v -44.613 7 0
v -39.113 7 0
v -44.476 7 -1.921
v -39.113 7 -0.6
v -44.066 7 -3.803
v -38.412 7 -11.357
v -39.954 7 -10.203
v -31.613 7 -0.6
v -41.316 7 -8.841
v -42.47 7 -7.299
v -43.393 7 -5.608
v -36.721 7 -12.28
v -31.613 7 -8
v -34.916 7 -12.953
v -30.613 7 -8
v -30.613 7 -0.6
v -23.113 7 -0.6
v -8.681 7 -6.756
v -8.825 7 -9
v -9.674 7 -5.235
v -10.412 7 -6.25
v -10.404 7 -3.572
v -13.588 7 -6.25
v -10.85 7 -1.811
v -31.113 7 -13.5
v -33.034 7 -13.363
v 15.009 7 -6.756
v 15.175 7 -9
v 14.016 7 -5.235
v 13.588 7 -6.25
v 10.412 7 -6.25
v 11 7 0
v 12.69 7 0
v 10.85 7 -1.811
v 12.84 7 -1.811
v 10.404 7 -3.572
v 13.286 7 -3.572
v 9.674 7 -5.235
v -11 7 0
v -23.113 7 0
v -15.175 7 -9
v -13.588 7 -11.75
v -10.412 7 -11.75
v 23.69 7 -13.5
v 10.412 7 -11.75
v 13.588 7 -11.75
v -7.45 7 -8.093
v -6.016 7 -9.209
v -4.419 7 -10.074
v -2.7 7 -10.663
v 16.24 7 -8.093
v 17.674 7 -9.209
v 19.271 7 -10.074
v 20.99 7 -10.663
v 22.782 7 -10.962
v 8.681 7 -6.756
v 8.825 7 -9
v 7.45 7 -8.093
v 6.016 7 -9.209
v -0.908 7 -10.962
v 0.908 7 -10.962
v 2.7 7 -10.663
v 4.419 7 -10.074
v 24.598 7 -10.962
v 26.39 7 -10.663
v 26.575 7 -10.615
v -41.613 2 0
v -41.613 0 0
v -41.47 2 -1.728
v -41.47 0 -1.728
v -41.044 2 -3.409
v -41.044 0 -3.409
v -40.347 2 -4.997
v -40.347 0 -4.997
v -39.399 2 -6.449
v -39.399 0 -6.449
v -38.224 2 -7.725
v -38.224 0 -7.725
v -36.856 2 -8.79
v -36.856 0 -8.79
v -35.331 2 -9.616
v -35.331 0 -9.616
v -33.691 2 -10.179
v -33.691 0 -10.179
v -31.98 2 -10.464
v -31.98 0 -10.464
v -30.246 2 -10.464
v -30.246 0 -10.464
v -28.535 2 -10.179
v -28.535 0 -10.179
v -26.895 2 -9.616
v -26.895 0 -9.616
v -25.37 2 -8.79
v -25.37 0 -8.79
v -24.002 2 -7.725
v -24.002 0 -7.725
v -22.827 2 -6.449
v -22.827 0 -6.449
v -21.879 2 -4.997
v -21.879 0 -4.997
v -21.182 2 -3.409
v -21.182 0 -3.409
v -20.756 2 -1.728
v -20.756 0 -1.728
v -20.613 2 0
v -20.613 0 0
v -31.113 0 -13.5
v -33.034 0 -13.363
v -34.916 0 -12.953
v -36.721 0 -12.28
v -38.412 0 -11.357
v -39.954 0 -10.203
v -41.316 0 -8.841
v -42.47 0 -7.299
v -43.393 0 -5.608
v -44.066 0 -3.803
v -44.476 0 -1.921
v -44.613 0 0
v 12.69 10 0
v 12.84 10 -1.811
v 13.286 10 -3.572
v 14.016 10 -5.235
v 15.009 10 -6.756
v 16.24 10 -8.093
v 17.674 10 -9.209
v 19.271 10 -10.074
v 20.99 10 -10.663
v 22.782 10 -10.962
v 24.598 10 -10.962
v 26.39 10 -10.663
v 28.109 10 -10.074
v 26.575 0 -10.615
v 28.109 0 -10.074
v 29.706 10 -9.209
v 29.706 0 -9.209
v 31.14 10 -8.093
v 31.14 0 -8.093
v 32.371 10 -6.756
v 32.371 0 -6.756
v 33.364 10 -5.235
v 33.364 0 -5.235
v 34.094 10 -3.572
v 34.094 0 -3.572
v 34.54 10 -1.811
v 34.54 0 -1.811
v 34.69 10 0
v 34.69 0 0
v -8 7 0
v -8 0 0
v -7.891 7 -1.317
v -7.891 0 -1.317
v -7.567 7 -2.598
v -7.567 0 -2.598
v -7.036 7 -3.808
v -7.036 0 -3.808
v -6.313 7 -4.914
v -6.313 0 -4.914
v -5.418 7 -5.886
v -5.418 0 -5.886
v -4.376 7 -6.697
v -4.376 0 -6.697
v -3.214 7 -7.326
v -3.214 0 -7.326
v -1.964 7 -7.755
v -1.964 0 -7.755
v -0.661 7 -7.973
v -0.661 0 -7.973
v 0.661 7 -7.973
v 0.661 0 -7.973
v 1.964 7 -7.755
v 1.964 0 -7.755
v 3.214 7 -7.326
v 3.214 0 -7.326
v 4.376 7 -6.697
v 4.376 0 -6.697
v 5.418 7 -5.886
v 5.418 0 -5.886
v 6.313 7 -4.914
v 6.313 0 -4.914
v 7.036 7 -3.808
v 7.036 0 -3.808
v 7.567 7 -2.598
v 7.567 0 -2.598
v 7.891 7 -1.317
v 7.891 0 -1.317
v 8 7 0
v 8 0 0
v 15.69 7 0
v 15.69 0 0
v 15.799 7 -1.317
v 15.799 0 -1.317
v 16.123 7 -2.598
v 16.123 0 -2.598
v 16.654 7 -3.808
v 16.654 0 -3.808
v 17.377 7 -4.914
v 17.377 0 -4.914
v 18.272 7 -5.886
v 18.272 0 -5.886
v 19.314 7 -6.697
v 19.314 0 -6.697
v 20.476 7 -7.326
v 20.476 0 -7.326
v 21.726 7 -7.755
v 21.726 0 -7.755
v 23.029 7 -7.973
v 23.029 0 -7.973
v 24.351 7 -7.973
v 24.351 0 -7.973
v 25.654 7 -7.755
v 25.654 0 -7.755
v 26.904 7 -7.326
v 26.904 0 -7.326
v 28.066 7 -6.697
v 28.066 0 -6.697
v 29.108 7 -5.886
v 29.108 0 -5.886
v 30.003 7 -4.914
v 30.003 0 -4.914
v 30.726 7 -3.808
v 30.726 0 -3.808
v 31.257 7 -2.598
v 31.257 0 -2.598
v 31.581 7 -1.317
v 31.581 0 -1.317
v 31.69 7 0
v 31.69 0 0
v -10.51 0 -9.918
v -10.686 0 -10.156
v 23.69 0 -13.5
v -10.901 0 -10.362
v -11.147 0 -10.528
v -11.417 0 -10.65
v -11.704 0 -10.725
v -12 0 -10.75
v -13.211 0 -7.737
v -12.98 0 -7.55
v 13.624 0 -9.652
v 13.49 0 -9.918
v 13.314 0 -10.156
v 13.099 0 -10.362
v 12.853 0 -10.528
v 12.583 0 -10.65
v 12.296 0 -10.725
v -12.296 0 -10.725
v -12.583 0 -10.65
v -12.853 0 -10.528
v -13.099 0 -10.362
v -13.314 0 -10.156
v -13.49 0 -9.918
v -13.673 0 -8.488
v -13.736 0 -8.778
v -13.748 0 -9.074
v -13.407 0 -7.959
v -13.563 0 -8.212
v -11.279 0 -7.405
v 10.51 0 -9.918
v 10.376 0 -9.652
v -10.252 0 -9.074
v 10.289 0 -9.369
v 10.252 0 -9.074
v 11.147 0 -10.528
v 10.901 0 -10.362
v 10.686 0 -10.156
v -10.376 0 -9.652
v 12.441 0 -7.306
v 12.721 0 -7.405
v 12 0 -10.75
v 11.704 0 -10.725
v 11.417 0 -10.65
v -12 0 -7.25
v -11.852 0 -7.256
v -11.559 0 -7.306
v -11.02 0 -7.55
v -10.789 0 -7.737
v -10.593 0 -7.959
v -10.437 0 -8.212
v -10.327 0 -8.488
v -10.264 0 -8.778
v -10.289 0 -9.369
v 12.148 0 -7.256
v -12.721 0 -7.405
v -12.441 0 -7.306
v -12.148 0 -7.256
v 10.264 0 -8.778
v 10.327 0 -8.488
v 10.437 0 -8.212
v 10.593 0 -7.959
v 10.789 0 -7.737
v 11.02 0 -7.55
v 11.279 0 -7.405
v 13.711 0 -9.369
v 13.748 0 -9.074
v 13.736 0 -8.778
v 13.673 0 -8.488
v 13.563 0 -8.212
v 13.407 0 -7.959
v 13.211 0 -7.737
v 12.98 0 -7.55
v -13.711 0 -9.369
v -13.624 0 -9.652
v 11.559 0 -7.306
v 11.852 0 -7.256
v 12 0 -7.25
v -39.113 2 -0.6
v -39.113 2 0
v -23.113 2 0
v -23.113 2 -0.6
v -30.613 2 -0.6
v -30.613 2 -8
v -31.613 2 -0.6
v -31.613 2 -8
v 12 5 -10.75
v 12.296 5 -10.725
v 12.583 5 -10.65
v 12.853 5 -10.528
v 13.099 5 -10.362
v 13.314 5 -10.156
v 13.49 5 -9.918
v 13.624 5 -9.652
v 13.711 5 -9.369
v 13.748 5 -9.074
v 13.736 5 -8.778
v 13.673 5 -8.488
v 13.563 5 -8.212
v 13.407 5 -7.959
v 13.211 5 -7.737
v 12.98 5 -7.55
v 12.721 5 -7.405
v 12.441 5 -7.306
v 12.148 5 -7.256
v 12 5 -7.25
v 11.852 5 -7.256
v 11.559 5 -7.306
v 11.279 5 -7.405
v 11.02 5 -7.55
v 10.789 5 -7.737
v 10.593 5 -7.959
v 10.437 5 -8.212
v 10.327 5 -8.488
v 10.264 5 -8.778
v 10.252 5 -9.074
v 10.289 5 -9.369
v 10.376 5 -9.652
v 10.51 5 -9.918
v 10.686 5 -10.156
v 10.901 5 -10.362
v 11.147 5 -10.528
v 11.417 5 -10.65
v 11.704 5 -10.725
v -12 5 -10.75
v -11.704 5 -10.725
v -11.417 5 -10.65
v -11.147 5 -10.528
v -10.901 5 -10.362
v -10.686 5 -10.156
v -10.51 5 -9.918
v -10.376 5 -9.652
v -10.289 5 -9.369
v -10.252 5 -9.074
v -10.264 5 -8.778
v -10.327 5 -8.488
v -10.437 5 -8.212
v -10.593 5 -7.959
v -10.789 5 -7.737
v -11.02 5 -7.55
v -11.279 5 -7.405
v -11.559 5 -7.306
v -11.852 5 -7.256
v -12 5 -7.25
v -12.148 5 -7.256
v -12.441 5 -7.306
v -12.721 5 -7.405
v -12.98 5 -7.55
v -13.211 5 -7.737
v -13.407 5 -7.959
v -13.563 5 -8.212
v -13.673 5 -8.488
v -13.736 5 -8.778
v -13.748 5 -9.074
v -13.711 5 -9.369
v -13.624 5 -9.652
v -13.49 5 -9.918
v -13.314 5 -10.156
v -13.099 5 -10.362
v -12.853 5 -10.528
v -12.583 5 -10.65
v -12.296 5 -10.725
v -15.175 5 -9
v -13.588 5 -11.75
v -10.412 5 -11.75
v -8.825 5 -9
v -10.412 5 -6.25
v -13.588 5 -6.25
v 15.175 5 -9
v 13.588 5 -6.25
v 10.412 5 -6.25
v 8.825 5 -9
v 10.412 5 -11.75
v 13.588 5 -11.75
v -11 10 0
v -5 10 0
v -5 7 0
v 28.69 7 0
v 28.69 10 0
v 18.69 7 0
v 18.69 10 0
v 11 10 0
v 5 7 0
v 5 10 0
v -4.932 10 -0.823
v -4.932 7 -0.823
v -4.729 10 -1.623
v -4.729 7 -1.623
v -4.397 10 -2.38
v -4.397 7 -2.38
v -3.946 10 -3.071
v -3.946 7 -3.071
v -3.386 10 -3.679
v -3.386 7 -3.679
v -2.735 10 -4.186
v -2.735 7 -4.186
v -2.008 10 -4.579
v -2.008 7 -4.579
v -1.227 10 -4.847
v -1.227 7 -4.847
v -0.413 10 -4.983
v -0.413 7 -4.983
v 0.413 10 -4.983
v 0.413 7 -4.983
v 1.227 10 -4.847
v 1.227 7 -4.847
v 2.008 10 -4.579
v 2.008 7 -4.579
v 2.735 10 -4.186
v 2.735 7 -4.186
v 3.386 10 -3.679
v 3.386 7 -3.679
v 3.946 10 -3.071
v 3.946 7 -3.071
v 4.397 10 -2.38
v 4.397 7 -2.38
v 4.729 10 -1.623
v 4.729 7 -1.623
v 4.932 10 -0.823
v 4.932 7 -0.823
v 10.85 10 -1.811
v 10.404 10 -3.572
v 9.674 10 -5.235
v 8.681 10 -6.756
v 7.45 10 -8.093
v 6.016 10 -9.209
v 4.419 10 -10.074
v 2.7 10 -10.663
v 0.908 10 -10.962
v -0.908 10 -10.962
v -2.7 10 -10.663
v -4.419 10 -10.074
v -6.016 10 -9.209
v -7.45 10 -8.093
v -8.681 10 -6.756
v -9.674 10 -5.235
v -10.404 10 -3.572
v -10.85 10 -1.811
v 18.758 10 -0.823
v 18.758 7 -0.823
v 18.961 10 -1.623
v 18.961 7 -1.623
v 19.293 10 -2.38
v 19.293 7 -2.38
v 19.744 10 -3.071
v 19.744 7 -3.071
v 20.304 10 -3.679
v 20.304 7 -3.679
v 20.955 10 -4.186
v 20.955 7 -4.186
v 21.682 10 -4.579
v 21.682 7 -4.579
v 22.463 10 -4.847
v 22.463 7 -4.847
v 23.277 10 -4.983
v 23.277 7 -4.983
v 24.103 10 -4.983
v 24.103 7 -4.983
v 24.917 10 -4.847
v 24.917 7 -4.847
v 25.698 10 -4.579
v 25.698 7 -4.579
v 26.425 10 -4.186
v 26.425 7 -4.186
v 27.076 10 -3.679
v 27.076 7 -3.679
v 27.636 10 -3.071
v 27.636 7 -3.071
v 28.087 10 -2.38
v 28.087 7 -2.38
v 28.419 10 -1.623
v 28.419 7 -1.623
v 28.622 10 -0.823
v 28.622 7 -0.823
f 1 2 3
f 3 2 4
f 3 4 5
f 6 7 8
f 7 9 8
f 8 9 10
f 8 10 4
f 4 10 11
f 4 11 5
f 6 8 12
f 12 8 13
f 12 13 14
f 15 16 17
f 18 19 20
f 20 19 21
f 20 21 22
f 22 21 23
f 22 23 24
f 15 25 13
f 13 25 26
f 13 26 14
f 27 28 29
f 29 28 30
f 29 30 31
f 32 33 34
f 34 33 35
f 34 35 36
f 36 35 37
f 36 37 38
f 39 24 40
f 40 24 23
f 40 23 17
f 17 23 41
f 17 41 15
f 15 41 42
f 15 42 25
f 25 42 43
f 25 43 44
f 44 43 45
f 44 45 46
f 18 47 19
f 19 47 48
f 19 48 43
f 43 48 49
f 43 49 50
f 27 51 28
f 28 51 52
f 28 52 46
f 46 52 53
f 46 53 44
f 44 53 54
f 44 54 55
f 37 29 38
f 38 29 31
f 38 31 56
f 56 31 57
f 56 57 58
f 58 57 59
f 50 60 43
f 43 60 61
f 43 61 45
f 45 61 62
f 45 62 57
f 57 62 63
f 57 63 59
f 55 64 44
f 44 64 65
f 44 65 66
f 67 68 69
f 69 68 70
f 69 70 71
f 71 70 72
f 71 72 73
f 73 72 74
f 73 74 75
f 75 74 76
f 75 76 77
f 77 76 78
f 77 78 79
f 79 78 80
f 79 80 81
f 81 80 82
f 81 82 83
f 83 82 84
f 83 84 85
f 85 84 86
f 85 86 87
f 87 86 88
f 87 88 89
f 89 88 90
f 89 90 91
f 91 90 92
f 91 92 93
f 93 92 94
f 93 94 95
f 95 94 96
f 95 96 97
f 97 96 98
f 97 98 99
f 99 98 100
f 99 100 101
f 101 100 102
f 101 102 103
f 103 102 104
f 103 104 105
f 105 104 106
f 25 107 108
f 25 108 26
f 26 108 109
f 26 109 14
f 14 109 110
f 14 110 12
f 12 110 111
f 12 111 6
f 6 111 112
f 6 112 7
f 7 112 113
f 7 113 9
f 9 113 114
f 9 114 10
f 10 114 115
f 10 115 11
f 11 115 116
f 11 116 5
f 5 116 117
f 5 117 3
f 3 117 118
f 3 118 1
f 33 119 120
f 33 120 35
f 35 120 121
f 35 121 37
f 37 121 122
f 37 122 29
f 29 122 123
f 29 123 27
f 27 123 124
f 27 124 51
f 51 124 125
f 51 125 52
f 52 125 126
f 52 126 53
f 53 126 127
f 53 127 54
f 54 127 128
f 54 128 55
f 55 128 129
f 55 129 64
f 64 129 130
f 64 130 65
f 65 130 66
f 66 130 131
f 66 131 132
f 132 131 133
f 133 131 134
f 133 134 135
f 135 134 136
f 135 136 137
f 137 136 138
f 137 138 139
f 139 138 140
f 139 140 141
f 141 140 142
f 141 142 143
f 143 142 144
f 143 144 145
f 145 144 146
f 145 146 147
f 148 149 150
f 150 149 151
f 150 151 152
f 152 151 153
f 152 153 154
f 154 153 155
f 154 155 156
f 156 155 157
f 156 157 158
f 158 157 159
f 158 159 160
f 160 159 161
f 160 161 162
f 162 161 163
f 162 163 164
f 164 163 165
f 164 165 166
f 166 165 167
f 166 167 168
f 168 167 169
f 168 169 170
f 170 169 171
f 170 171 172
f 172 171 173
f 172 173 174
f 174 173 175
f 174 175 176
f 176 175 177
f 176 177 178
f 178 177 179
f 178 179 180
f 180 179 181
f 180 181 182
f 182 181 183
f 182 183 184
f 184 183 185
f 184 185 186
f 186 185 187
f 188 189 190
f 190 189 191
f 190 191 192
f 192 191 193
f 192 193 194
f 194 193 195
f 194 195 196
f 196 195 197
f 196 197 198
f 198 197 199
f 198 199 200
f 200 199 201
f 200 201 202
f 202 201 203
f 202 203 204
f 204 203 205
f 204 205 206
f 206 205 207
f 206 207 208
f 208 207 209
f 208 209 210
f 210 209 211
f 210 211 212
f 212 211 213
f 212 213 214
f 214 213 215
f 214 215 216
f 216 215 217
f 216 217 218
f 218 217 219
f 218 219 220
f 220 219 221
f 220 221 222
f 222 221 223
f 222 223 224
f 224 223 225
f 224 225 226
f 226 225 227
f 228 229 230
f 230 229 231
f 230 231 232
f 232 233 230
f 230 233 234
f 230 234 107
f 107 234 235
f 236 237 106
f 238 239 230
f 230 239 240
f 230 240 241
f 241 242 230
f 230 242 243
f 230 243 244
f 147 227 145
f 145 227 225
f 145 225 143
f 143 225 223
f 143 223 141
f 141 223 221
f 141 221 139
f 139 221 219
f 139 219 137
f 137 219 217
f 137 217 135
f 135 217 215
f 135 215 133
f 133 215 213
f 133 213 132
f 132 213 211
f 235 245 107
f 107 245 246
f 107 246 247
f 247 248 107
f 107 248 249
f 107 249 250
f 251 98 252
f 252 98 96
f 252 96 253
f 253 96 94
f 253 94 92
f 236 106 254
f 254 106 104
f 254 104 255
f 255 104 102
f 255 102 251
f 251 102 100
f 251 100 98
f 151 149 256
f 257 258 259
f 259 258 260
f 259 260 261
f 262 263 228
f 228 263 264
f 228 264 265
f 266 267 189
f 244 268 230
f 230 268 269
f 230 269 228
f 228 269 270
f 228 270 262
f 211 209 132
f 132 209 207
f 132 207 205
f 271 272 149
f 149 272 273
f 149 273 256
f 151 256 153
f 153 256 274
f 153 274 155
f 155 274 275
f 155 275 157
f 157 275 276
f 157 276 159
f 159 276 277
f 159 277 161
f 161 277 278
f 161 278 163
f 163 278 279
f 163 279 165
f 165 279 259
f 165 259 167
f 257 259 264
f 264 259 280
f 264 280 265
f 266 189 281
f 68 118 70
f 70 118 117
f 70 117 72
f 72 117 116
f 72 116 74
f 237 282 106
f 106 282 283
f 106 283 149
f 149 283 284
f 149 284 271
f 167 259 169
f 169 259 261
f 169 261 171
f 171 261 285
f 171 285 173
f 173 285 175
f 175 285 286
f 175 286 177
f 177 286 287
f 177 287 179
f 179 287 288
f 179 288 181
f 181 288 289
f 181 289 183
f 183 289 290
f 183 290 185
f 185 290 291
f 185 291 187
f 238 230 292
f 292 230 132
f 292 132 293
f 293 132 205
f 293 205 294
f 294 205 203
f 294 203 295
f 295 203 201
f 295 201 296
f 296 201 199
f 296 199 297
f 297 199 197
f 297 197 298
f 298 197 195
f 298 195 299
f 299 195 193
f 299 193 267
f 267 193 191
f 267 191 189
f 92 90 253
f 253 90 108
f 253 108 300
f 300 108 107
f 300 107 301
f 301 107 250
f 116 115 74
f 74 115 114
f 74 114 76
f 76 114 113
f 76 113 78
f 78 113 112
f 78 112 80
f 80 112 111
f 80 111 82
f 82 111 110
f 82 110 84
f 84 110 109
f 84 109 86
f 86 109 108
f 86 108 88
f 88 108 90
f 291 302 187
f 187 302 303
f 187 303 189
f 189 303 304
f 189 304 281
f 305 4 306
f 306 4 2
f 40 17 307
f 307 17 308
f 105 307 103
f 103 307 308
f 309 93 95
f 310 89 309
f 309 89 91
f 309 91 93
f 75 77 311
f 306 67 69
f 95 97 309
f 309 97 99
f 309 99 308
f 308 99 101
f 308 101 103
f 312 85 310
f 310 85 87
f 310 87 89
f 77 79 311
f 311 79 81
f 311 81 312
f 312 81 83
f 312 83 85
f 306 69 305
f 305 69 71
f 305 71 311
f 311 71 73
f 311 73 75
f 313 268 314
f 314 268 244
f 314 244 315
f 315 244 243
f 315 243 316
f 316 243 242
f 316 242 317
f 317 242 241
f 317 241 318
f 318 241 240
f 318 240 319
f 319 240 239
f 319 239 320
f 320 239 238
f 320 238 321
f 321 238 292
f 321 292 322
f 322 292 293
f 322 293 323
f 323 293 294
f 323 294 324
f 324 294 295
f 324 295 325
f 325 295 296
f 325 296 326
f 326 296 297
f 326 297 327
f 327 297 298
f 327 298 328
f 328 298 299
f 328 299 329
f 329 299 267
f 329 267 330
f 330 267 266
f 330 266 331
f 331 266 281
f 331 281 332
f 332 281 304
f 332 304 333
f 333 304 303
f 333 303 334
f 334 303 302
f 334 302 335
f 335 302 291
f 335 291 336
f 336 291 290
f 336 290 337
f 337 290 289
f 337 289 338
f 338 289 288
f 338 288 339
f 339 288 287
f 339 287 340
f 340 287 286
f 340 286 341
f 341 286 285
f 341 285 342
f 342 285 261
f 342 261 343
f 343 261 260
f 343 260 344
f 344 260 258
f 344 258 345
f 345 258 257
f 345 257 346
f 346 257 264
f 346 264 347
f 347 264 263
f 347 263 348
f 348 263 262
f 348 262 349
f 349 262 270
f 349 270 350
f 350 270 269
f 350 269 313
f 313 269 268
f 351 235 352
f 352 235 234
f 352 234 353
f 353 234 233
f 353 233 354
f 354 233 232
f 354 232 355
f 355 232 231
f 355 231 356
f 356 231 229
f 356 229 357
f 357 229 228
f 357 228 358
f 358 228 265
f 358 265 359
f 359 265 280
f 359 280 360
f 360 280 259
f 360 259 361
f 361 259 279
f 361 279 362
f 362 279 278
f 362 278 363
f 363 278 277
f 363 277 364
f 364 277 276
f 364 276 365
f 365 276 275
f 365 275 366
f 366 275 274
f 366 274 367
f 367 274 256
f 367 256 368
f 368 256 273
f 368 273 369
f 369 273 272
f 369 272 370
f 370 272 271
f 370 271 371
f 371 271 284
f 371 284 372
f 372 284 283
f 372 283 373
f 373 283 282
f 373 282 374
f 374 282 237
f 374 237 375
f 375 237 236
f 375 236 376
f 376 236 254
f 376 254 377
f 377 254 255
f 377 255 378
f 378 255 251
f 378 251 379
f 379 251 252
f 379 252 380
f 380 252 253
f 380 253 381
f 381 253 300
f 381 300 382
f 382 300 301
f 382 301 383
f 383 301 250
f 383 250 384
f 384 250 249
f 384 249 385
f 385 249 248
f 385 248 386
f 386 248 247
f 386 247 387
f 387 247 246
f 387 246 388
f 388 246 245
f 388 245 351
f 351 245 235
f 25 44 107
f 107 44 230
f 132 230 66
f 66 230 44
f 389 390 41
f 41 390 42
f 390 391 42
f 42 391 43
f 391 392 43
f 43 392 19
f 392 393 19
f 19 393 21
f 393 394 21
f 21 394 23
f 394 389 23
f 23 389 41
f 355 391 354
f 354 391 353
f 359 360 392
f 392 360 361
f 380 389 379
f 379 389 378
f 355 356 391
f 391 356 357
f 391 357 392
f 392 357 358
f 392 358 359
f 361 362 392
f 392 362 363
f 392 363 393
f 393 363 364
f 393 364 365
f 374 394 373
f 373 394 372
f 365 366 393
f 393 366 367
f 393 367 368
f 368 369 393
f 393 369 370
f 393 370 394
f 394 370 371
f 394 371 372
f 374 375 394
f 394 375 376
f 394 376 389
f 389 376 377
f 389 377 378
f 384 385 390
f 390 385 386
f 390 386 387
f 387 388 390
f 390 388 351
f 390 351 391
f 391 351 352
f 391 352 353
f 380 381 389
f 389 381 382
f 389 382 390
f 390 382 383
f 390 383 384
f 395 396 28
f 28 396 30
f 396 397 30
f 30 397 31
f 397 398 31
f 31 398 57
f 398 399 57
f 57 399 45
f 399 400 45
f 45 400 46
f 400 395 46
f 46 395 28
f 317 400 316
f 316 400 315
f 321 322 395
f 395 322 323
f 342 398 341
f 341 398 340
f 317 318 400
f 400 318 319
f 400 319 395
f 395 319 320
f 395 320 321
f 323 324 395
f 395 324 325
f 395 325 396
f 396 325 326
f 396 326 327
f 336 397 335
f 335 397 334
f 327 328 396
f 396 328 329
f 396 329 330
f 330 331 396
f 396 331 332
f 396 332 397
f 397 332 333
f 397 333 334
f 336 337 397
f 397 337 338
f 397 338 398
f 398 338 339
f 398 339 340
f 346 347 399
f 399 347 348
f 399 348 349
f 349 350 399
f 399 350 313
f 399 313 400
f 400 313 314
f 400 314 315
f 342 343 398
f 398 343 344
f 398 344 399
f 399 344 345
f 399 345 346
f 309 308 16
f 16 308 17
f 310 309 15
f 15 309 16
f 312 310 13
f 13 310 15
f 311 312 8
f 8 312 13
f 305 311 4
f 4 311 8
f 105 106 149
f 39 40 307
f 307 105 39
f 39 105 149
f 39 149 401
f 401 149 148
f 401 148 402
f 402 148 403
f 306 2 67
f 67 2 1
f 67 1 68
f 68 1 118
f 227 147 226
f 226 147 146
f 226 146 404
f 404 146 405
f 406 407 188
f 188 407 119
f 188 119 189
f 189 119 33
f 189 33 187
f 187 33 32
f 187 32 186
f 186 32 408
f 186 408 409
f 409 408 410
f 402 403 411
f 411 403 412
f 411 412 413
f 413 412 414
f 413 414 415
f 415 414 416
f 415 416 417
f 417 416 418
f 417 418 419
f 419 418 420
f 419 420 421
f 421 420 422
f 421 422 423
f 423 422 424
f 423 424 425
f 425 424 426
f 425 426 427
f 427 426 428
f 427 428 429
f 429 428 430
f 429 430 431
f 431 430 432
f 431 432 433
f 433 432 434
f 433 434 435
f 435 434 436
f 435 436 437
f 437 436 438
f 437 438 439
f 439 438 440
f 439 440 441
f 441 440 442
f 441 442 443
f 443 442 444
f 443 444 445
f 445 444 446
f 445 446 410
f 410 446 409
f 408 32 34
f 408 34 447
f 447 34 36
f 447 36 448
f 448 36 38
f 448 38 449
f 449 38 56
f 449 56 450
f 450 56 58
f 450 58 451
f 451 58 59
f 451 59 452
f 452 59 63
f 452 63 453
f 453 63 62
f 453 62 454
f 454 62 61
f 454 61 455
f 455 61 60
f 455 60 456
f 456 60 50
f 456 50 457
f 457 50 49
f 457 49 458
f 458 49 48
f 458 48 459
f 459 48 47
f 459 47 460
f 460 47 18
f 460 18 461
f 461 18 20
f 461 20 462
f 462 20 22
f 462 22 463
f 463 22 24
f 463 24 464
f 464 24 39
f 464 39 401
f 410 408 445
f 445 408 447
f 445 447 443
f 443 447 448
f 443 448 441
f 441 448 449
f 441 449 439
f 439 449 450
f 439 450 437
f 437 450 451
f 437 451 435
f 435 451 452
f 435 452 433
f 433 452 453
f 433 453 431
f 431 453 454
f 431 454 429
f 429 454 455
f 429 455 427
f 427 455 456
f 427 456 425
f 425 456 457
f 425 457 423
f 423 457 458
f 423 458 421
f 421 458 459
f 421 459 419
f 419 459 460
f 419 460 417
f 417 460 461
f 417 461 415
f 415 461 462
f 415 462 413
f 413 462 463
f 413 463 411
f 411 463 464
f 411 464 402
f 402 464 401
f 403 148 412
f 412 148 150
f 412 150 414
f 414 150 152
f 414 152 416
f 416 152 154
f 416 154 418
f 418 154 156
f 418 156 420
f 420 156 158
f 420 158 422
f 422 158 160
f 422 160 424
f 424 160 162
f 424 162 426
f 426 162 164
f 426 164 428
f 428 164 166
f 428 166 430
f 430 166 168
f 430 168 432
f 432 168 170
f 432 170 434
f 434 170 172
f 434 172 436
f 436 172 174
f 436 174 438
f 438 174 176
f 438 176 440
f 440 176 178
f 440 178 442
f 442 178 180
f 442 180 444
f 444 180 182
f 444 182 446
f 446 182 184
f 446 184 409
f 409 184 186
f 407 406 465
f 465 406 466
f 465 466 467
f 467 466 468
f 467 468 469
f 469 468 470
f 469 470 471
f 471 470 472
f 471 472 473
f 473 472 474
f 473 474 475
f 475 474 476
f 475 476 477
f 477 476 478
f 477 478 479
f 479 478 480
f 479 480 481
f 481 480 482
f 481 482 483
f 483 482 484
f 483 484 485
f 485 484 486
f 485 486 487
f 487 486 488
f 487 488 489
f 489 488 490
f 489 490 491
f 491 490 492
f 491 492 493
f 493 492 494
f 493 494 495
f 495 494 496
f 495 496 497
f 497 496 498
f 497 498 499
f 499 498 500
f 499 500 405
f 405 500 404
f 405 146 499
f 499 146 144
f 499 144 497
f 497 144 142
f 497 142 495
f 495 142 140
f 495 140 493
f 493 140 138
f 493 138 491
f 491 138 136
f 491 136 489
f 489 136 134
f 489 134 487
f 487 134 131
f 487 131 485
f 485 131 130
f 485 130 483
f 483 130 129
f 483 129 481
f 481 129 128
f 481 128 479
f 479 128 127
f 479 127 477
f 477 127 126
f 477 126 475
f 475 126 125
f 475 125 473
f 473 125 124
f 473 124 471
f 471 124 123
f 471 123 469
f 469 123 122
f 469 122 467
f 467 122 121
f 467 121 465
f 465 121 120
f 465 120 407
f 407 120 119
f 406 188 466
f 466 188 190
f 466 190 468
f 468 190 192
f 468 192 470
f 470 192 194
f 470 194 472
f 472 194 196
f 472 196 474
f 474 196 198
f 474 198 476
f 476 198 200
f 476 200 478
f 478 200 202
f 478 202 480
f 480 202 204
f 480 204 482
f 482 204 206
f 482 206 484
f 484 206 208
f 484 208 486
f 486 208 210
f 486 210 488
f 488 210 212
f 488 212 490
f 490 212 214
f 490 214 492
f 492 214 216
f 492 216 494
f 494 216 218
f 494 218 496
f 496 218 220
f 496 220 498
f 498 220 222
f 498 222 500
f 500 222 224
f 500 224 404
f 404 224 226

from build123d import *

# Parameters (mm, degrees)
SKETCH3_R               = 8
SKETCH3_W               = 54.803
SKETCH3_H               = 32
SKETCH3_R_2             = 5
BOSS_EXTRUDE1_DEPTH     = 7
CUT_EXTRUDE3_DEPTH      = 65.105926161
CUT_EXTRUDE3_DEPTH_BACK = 65.105926161
SKETCH4_R               = 1.75
CHAMFER1_SIZE           = 2.5
CUT_EXTRUDE5_DEPTH      = 65.105926161
CUT_EXTRUDE5_DEPTH_BACK = 65.105926161
SKETCH9_R               = 1.75
CUT_EXTRUDE6_START      = -2
SKETCH10_R              = 1.75
CUT_EXTRUDE6_DEPTH      = 2
CHAMFER3_SIZE2          = 22
CHAMFER3_SIZE           = 32
CHAMFER4_SIZE           = 16
FILLET1_DEPTH           = 7
BOSS_EXTRUDE6_START     = -5
SKETCH15_R              = 10.5
BOSS_EXTRUDE6_DEPTH     = 5
CUT_EXTRUDE7_DEPTH      = 65.105926161
CUT_EXTRUDE7_DEPTH_BACK = 65.105926161
SKETCH16_W              = 114.08603318
SKETCH16_H              = 61.147895568
BOSS_EXTRUDE7_DEPTH     = 3


with BuildPart() as part:
    # Sketch3 → Boss-Extrude1 (new body)
    # profile 1 of 10: a face of its own
    with BuildSketch(Plane(origin=(0, 0, 0), x_dir=(1, 0, 0), z_dir=(0, 1, 0))):
        with BuildLine():
            ThreePointArc((-17.613, 0), (-21.567058454, 9.545941546), (-31.113, 13.5))
            Line((-31.113, 13.5), (-31.113, 10.5))
            ThreePointArc((-31.113, 10.5), (-23.688378798, 7.424621202), (-20.613, 0))
            ThreePointArc((-20.613, 0), (-23.688378798, -7.424621202), (-31.113, -10.5))
            Line((-31.113, -10.5), (-31.113, -13.5))
            ThreePointArc((-31.113, -13.5), (-21.567058454, -9.545941546), (-17.613, 0))
        make_face()
    # profile 2 of 10: a face of its own
    with BuildSketch(Plane(origin=(0, 0, 0), x_dir=(1, 0, 0), z_dir=(0, 1, 0))):
        with BuildLine():
            Line((-31.113, 10.5), (-31.113, 13.5))
            ThreePointArc((-31.113, 13.5), (-44.613, 0), (-31.113, -13.5))
            Line((-31.113, -13.5), (-31.113, -10.5))
            ThreePointArc((-31.113, -10.5), (-41.613, 0), (-31.113, 10.5))
        make_face()
    # profile 3 of 10: a face of its own
    with BuildSketch(Plane(origin=(0, 0, 0), x_dir=(1, 0, 0), z_dir=(0, 1, 0))):
        with BuildLine():
            Line((23.69, 13.5), (-31.113, 13.5))
            ThreePointArc((-31.113, 13.5), (-21.567058454, 9.545941546), (-17.613, 0))
            ThreePointArc((-17.613, 0), (-21.567058454, -9.545941546), (-31.113, -13.5))
            Line((-31.113, -13.5), (23.69, -13.5))
            Line((23.69, -13.5), (23.69, -11))
            ThreePointArc((23.69, -11), (12.69, 0), (23.69, 11))
            Line((23.69, 11), (23.69, 13.5))
        make_face()
        with Locations(Location((0, 0, 0), (0, 0, 270))):
            Circle(SKETCH3_R, mode=Mode.SUBTRACT)
    # profile 4 of 10: a face of its own
    with BuildSketch(Plane(origin=(0, 0, 0), x_dir=(1, 0, 0), z_dir=(0, 1, 0))):
        with BuildLine():
            ThreePointArc((-17.613, 0), (-21.567058454, 9.545941546), (-31.113, 13.5))
            Line((-31.113, 13.5), (-31.113, 10.5))
            ThreePointArc((-31.113, 10.5), (-23.688378798, 7.424621202), (-20.613, 0))
            ThreePointArc((-20.613, 0), (-23.688378798, -7.424621202), (-31.113, -10.5))
            Line((-31.113, -10.5), (-31.113, -13.5))
            ThreePointArc((-31.113, -13.5), (-21.567058454, -9.545941546), (-17.613, 0))
        make_face()
    # profile 5 of 10: a face of its own
    with BuildSketch(Plane(origin=(0, 0, 0), x_dir=(1, 0, 0), z_dir=(0, 1, 0))):
        with BuildLine():
            Line((-31.113, 10.5), (-31.113, 13.5))
            ThreePointArc((-31.113, 13.5), (-44.613, 0), (-31.113, -13.5))
            Line((-31.113, -13.5), (-31.113, -10.5))
            ThreePointArc((-31.113, -10.5), (-41.613, 0), (-31.113, 10.5))
        make_face()
    # profile 6 of 10: a face of its own
    with BuildSketch(Plane(origin=(0, 0, 0), x_dir=(1, 0, 0), z_dir=(0, 1, 0))):
        with BuildLine():
            ThreePointArc((34.69, 0), (31.468174593, 7.778174593), (23.69, 11))
            Line((23.69, 11), (23.69, 8))
            ThreePointArc((23.69, 8), (29.346854249, 5.656854249), (31.69, 0))
            ThreePointArc((31.69, 0), (29.346854249, -5.656854249), (23.69, -8))
            Line((23.69, -8), (23.69, -11))
            ThreePointArc((23.69, -11), (31.468174593, -7.778174593), (34.69, 0))
        make_face()
    # profile 7 of 10: a face of its own
    with BuildSketch(Plane(origin=(0, 0, 0), x_dir=(1, 0, 0), z_dir=(0, 1, 0))):
        with BuildLine():
            Line((23.69, 8), (23.69, 11))
            ThreePointArc((23.69, 11), (12.69, 0), (23.69, -11))
            Line((23.69, -11), (23.69, -8))
            ThreePointArc((23.69, -8), (15.69, 0), (23.69, 8))
        make_face()
    # profile 8 of 10: a face of its own
    with BuildSketch(Plane(origin=(0, 0, 0), x_dir=(1, 0, 0), z_dir=(0, 1, 0))):
        with Locations((-3.7115, -29.5)):
            Rectangle(SKETCH3_W, SKETCH3_H)
        with Locations(Location((0, -32.707574931, 0), (0, 0, 270))):
            Circle(SKETCH3_R_2, mode=Mode.SUBTRACT)
    # profile 9 of 10: a face of its own
    with BuildSketch(Plane(origin=(0, 0, 0), x_dir=(1, 0, 0), z_dir=(0, 1, 0))):
        with BuildLine():
            ThreePointArc((34.69, 0), (31.468174593, 7.778174593), (23.69, 11))
            Line((23.69, 11), (23.69, 8))
            ThreePointArc((23.69, 8), (29.346854249, 5.656854249), (31.69, 0))
            ThreePointArc((31.69, 0), (29.346854249, -5.656854249), (23.69, -8))
            Line((23.69, -8), (23.69, -11))
            ThreePointArc((23.69, -11), (31.468174593, -7.778174593), (34.69, 0))
        make_face()
    # profile 10 of 10: a face of its own
    with BuildSketch(Plane(origin=(0, 0, 0), x_dir=(1, 0, 0), z_dir=(0, 1, 0))):
        with BuildLine():
            Line((23.69, 8), (23.69, 11))
            ThreePointArc((23.69, 11), (12.69, 0), (23.69, -11))
            Line((23.69, -11), (23.69, -8))
            ThreePointArc((23.69, -8), (15.69, 0), (23.69, 8))
        make_face()
    extrude(amount=BOSS_EXTRUDE1_DEPTH)

    # Sketch4 → Cut-Extrude3 (cut, two sides: drawn at the far end of the back side and taken through both)
    with BuildSketch(Plane(origin=(0, 0, 0), x_dir=(1, 0, 0), z_dir=(0, 1, 0)).offset(-CUT_EXTRUDE3_DEPTH_BACK)):
        with Locations(Location((5.5, -27.207574931, 0), (0, 0, 270))):
            Circle(SKETCH4_R)
        with Locations(Location((5.5, -38.207574931, 0), (0, 0, 270))):
            Circle(SKETCH4_R)
        with Locations(Location((-5.5, -38.207574931, 0), (0, 0, 270))):
            Circle(SKETCH4_R)
        with Locations(Location((-5.5, -27.207574931, 0), (0, 0, 270))):
            Circle(SKETCH4_R)
    extrude(amount=CUT_EXTRUDE3_DEPTH + CUT_EXTRUDE3_DEPTH_BACK, mode=Mode.SUBTRACT)

    # Chamfer1
    # the kernel refuses this chamfer: 2.5 mm, written as the material it adds along each edge
    with BuildSketch(Plane(origin=(23.69, 0, -11), x_dir=(0, 0, -1), z_dir=(0, 1, 0))) as chamfer1_piece_1_section:
        with BuildLine():
            Line((CHAMFER1_SIZE, 0), (-0.385093792, -2.885093792))
            ThreePointArc((-0.385093792, -2.885093792), (-0.102088007, -1.495163601), (0, 0))
            Line((0, 0), (CHAMFER1_SIZE, 0))
        make_face()
    chamfer1_piece_1 = extrude(amount=7, mode=Mode.PRIVATE)
    chamfer1_piece_1 = split(chamfer1_piece_1, bisect_by=Plane(origin=(23.69, 0, -13.5), z_dir=(0, 0, 1)), keep=Keep.TOP, mode=Mode.PRIVATE)
    add(chamfer1_piece_1)

    # Sketch9 → Cut-Extrude5 (cut, two sides: drawn at the far end of the back side and taken through both)
    with BuildSketch(Plane(origin=(0, 0, 0), x_dir=(1, 0, 0), z_dir=(0, 1, 0)).offset(-CUT_EXTRUDE5_DEPTH_BACK)):
        with Locations(Location((12, 9, 0), (0, 0, 270))):
            Circle(SKETCH9_R)
        with Locations(Location((12, -9, 0), (0, 0, 270))):
            Circle(SKETCH9_R)
        with Locations(Location((-12, -9, 0), (0, 0, 270))):
            Circle(SKETCH9_R)
        with Locations(Location((-12, 9, 0), (0, 0, 270))):
            Circle(SKETCH9_R)
    extrude(amount=CUT_EXTRUDE5_DEPTH + CUT_EXTRUDE5_DEPTH_BACK, mode=Mode.SUBTRACT)

    # Sketch10 → Cut-Extrude6 (cut)
    # profile 1 of 4: a face of its own
    with BuildSketch(Plane(origin=(0, 7, 0), x_dir=(1, 0, 0), z_dir=(0, 1, 0)).offset(CUT_EXTRUDE6_START)):
        Polygon((-15.175426481, -9), (-13.58771324, -11.75), (-10.41228676, -11.75), (-8.824573519, -9), (-10.41228676, -6.25), (-13.58771324, -6.25), align=None)
        with Locations(Location((-12, -9, 0), (0, 0, 270))):
            Circle(SKETCH10_R, mode=Mode.SUBTRACT)
    # profile 2 of 4: a face of its own
    with BuildSketch(Plane(origin=(0, 7, 0), x_dir=(1, 0, 0), z_dir=(0, 1, 0)).offset(CUT_EXTRUDE6_START)):
        Polygon((-15.175426481, 9), (-13.58771324, 6.25), (-10.41228676, 6.25), (-8.824573519, 9), (-10.41228676, 11.75), (-13.58771324, 11.75), align=None)
        with Locations(Location((-12, 9, 0), (0, 0, 270))):
            Circle(SKETCH10_R, mode=Mode.SUBTRACT)
    # profile 3 of 4: a face of its own
    with BuildSketch(Plane(origin=(0, 7, 0), x_dir=(1, 0, 0), z_dir=(0, 1, 0)).offset(CUT_EXTRUDE6_START)):
        Polygon((15.175426481, 9), (13.58771324, 11.75), (10.41228676, 11.75), (8.824573519, 9), (10.41228676, 6.25), (13.58771324, 6.25), align=None)
        with Locations(Location((12, 9, 0), (0, 0, 270))):
            Circle(SKETCH10_R, mode=Mode.SUBTRACT)
    # profile 4 of 4: a face of its own
    with BuildSketch(Plane(origin=(0, 7, 0), x_dir=(1, 0, 0), z_dir=(0, 1, 0)).offset(CUT_EXTRUDE6_START)):
        Polygon((15.175426481, -9), (13.58771324, -6.25), (10.41228676, -6.25), (8.824573519, -9), (10.41228676, -11.75), (13.58771324, -11.75), align=None)
        with Locations(Location((12, -9, 0), (0, 0, 270))):
            Circle(SKETCH10_R, mode=Mode.SUBTRACT)
    extrude(amount=CUT_EXTRUDE6_DEPTH, mode=Mode.SUBTRACT)

    # Chamfer2
    # the kernel refuses this chamfer: 5 mm, written as the material it adds along each edge
    with BuildSketch(Plane(origin=(23.69, 0, 11), x_dir=(0.9874000606639179, 0, -0.15824386307497393), z_dir=(0, 1, 0))) as chamfer2_piece_1:
        with BuildLine():
            Line((3.622786344, 0.141421356), (-0.805837357, -4.287202344))
            Line((-0.805837357, -4.287202344), (-0.904577363, -4.271377958))
            ThreePointArc((-0.904577363, -4.271377958), (-0.443767224, -2.137054655), (-0.098740006, 0.015824386))
            Line((-0.098740006, 0.015824386), (0.015824386, 0.098740006))
            ThreePointArc((0.015824386, 0.098740006), (1.81210794, -0.038365312), (3.606961958, 0.240161362))
            Line((3.606961958, 0.240161362), (3.622786344, 0.141421356))
        make_face()
    extrude(amount=7)

    # Chamfer3
    chamfer3_edges = [part.edges().sort_by_distance(p)[0] for p in [
        (-31.113, 3.5, 45.5),
    ]]
    chamfer3_side = [part.faces().sort_by_distance(p)[0] for p in [
        (-31.113, 3.5, 45.06),
    ]]
    chamfer(chamfer3_edges, length=CHAMFER3_SIZE - 0.0001, length2=CHAMFER3_SIZE2 - 0.0001, reference=chamfer3_side[0])  # a hair under: the kernel refuses the full size

    # Chamfer4
    chamfer4_edges = [part.edges().sort_by_distance(p)[0] for p in [
        (23.69, 3.5, 45.5),
    ]]
    chamfer(chamfer4_edges, length=CHAMFER4_SIZE)

    # Fillet1: read off the stored shape, not the designer's step
    # Fillet1 outline → Fillet1 (add)
    with BuildSketch(Plane(origin=(0, 0, 0), x_dir=(1, 0, 0), z_dir=(0, 1, 0))):
        with BuildLine():
            ThreePointArc((-31.113, -13.5), (-32.547033058, -13.423619079), (-33.96483904, -13.19534062))
            ThreePointArc((-33.96483904, -13.19534062), (-31.199410591, -14.370304214), (-29.062482337, -16.482571146))
            Line((-29.062482337, -16.482571146), (-31.113, -13.5))
        make_face()
    extrude(amount=FILLET1_DEPTH)

    # Sketch15 → Boss-Extrude6 (add)
    with BuildSketch(Plane(origin=(0, 7, 0), x_dir=(1, 0, 0), z_dir=(0, 1, 0)).offset(BOSS_EXTRUDE6_START)):
        with Locations(Location((-31.113, 0, 0), (0, 0, 270))):
            Circle(SKETCH15_R)
        Polygon((-31.613, 0.6), (-31.613, 8), (-30.613, 8), (-30.613, 0.6), (-23.113, 0.6), (-23.113, -0.6), (-30.613, -0.6), (-30.613, -8), (-31.613, -8), (-31.613, -0.6), (-39.113, -0.6), (-39.113, 0.6), align=None, mode=Mode.SUBTRACT)
    extrude(amount=BOSS_EXTRUDE6_DEPTH)

    # Sketch16 → Cut-Extrude7 (cut, two sides: drawn at the far end of the back side and taken through both)
    with BuildSketch(Plane(origin=(0, 0, 0), x_dir=(1, 0, 0), z_dir=(0, 1, 0)).offset(-CUT_EXTRUDE7_DEPTH_BACK)):
        with Locations((4.584286452, -30.573947784)):
            Rectangle(SKETCH16_W, SKETCH16_H)
    extrude(amount=CUT_EXTRUDE7_DEPTH + CUT_EXTRUDE7_DEPTH_BACK, mode=Mode.SUBTRACT)

    # Sketch17 → Boss-Extrude7 (add)
    with BuildSketch(Plane(origin=(0, 7, 0), x_dir=(1, 0, 0), z_dir=(0, 1, 0))):
        with BuildLine():
            ThreePointArc((-5, 0), (0, 5), (5, 0))
            Line((5, 0), (8, 0))
            ThreePointArc((8, 0), (0, 8), (-8, 0))
            Line((-8, 0), (-5, 0))
        make_face()
        with BuildLine():
            ThreePointArc((-8, 0), (0, 8), (8, 0))
            Line((8, 0), (11, 0))
            ThreePointArc((11, 0), (0, 11), (-11, 0))
            Line((-11, 0), (-8, 0))
        make_face()
        with BuildLine():
            ThreePointArc((31.69, 0), (23.69, 8), (15.69, 0))
            Line((15.69, 0), (18.69, 0))
            ThreePointArc((18.69, 0), (23.69, 5), (28.69, 0))
            Line((28.69, 0), (31.69, 0))
        make_face()
        with BuildLine():
            ThreePointArc((26.575093792, 10.614906208), (17.009282662, 8.738879554), (12.69, 0))
            Line((12.69, 0), (15.69, 0))
            ThreePointArc((15.69, 0), (23.69, 8), (31.69, 0))
            Line((31.69, 0), (34.69, 0))
            ThreePointArc((34.69, 0), (32.428879554, 6.680717338), (26.575093792, 10.614906208))
        make_face()
    extrude(amount=BOSS_EXTRUDE7_DEPTH)


solid = part.part
